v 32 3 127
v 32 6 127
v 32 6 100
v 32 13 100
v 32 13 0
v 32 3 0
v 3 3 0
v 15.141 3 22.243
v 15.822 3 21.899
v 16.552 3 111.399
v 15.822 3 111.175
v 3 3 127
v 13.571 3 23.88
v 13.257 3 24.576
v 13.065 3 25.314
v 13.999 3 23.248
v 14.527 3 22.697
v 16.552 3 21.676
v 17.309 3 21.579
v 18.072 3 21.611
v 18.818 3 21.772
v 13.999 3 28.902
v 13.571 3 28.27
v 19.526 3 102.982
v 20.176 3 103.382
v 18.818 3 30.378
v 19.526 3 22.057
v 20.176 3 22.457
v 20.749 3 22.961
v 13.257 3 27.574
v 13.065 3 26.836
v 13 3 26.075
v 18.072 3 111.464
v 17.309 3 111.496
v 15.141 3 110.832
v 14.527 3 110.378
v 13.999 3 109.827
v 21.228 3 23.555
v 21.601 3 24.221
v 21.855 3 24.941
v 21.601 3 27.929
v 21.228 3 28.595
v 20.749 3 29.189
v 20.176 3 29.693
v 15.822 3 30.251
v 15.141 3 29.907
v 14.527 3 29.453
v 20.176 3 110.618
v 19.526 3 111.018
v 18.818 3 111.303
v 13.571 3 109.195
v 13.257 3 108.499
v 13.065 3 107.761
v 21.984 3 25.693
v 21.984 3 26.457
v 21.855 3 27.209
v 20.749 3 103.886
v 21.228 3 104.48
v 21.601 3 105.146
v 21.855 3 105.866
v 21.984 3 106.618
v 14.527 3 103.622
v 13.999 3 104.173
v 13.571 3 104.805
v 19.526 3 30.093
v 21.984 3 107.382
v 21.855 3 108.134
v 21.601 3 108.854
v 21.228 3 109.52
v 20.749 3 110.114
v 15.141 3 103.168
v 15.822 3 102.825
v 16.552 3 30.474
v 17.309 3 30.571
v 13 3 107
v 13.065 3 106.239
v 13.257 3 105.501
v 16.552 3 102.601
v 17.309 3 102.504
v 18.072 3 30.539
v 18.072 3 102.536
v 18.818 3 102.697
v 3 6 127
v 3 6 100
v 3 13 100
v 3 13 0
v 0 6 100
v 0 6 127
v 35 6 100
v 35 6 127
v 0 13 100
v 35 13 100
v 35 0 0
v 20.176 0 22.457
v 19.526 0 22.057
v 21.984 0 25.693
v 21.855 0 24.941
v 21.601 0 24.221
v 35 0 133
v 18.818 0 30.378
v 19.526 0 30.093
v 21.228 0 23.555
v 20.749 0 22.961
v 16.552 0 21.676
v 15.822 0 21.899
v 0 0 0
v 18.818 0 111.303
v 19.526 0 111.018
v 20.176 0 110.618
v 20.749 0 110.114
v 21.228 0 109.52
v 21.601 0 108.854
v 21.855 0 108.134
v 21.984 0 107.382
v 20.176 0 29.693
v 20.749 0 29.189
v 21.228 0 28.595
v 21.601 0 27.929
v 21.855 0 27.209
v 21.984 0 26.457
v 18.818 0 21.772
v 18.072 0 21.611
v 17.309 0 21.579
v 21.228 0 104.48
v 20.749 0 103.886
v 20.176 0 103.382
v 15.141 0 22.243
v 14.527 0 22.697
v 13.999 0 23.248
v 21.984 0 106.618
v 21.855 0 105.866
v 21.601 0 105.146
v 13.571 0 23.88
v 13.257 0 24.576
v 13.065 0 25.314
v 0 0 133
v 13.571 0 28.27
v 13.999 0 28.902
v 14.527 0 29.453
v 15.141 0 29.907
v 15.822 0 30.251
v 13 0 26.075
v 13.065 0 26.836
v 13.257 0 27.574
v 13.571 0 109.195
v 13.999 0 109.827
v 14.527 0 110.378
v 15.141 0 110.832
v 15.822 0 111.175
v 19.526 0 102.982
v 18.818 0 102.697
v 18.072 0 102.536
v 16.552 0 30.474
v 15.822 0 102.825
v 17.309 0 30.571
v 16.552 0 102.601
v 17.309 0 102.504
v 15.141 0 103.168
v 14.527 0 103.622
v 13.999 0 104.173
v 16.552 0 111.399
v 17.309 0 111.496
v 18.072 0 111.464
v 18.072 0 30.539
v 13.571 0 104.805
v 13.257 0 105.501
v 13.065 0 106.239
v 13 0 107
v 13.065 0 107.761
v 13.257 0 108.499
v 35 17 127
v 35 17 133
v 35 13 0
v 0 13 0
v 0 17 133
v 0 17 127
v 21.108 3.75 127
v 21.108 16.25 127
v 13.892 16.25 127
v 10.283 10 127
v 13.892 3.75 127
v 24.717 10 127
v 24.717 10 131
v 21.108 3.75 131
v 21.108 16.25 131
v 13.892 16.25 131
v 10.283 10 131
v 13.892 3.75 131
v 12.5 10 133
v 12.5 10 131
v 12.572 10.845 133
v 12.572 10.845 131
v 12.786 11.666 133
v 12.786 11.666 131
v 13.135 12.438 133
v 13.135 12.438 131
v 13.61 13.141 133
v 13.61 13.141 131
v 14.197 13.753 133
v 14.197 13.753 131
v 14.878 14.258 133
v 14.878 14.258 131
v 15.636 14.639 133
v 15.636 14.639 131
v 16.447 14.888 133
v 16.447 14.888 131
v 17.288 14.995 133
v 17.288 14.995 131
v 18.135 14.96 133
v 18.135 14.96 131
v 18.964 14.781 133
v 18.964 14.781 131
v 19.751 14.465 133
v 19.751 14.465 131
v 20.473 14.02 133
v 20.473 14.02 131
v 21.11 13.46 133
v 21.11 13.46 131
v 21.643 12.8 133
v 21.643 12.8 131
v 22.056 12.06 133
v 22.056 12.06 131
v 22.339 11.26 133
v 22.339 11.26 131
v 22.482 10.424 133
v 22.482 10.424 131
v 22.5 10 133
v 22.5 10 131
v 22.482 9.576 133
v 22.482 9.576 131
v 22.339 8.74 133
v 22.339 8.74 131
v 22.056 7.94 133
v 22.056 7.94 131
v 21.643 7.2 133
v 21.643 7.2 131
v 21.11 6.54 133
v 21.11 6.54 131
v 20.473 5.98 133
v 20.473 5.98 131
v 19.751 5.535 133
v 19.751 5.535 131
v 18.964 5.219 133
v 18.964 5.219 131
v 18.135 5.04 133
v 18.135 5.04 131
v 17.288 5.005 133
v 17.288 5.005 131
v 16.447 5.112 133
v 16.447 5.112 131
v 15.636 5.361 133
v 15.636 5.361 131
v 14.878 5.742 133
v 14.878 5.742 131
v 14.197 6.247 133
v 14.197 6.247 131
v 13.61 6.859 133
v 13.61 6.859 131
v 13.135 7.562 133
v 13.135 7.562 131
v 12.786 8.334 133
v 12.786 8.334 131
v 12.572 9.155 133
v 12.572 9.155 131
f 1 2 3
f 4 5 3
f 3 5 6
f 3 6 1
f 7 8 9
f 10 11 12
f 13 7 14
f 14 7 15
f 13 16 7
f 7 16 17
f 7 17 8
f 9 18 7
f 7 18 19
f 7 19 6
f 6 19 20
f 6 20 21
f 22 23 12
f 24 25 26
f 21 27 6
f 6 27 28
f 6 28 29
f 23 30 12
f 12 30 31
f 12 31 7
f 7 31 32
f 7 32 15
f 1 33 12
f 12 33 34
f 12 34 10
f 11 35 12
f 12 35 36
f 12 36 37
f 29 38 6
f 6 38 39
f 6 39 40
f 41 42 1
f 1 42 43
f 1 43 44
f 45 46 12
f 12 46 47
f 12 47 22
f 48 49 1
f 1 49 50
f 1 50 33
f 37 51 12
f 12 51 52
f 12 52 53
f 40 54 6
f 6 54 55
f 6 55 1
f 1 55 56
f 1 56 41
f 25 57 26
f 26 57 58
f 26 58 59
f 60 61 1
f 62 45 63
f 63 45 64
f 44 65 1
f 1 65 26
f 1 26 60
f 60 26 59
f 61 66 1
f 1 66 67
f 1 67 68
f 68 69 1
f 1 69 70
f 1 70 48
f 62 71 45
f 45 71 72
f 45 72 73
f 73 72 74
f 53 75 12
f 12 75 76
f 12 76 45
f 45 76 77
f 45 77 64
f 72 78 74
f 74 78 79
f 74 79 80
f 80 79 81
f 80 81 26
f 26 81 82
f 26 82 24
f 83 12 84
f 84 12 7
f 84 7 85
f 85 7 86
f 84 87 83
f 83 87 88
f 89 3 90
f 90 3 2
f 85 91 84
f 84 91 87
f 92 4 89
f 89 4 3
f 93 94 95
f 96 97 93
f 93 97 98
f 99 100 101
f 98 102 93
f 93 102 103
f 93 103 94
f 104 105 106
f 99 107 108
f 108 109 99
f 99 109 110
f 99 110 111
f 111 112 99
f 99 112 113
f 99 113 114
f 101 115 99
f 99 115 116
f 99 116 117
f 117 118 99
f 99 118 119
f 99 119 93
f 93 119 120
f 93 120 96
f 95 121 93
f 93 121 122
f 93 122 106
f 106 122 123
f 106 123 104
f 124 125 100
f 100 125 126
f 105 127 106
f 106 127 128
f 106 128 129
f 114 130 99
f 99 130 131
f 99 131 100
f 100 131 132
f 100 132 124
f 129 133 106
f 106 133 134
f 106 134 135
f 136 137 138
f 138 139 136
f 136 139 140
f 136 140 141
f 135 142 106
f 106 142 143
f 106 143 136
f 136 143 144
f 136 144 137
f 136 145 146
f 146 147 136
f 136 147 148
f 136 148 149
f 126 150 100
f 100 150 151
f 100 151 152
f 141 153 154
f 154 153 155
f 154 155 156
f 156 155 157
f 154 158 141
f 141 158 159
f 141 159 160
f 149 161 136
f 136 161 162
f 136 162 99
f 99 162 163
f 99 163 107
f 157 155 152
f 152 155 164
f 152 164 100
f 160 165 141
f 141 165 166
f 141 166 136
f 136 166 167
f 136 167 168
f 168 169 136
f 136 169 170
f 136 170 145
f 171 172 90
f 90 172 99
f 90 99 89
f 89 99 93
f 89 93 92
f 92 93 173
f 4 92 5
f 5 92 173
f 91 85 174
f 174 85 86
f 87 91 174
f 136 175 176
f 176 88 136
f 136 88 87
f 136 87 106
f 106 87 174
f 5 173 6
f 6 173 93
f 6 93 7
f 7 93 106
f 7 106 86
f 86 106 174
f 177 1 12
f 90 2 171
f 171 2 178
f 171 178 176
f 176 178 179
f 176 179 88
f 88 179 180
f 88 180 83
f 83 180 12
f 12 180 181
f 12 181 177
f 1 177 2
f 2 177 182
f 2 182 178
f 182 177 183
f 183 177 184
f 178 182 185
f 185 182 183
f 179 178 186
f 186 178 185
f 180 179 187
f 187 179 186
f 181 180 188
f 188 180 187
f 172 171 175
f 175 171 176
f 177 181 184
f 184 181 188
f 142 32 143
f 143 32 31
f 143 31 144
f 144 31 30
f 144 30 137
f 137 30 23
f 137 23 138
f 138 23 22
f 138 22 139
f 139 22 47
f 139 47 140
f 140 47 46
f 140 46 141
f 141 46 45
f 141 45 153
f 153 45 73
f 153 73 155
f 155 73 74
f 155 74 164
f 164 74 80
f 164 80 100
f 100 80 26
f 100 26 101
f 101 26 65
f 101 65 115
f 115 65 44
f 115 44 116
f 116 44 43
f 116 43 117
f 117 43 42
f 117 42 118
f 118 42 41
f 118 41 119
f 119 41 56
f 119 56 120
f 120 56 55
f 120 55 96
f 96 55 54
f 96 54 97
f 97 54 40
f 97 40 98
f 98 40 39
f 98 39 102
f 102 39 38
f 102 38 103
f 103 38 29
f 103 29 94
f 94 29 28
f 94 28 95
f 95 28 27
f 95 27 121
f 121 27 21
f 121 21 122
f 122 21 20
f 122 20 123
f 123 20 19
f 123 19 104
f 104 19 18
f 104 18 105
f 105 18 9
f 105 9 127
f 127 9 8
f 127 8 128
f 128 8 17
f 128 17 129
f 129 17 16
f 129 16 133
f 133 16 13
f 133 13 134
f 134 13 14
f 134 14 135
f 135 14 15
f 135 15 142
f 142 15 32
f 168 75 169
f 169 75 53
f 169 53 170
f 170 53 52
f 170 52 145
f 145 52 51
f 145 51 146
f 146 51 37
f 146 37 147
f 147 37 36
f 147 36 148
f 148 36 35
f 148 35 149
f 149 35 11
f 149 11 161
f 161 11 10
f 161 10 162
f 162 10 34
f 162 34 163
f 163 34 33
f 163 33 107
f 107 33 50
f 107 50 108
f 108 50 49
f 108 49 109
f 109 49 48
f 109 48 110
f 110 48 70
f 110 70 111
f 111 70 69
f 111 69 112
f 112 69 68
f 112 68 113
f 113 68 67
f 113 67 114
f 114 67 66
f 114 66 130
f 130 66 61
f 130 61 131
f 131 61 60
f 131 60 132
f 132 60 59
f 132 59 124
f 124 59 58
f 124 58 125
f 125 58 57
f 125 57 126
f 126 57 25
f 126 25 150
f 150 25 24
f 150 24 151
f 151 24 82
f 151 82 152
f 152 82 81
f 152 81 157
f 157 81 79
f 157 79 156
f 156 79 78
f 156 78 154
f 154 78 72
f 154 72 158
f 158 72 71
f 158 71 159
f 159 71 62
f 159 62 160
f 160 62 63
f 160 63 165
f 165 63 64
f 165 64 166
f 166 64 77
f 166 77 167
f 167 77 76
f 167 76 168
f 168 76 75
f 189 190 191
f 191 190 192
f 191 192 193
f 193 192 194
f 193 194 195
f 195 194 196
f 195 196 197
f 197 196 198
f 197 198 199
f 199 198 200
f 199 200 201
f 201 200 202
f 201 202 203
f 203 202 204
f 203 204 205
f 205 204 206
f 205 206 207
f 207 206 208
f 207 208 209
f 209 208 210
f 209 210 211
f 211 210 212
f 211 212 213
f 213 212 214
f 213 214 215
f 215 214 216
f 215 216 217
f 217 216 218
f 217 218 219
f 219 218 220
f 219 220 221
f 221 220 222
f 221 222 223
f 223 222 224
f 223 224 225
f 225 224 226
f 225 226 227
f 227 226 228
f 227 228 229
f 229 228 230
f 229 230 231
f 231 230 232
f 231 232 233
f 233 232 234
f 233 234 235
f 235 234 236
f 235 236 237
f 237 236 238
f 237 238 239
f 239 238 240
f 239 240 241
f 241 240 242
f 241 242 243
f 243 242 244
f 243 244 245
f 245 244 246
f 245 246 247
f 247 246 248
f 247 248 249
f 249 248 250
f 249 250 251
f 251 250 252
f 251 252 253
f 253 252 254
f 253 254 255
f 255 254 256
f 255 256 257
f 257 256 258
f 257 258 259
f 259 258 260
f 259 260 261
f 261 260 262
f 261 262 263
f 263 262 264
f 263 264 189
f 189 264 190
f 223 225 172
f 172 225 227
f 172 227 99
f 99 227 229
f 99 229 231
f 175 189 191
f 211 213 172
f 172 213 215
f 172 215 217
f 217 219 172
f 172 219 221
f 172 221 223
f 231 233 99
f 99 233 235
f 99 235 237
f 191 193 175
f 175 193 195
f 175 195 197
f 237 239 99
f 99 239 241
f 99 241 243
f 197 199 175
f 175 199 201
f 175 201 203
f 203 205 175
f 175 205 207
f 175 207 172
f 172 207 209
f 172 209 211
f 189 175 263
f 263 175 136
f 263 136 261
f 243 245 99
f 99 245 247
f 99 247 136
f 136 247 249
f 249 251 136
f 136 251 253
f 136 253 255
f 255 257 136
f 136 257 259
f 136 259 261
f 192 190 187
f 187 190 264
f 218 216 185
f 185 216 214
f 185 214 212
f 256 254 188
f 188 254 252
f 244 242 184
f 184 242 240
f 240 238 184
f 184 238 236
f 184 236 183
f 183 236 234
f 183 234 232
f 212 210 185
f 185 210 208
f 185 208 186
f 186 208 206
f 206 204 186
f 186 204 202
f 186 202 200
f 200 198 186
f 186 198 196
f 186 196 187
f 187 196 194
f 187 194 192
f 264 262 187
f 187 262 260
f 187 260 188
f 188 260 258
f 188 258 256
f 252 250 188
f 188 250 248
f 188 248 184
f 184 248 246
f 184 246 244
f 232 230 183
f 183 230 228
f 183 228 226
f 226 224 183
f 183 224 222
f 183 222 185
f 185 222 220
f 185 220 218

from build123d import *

# Parameters (mm, degrees)
BOSS_EXTRUDE1_DEPTH = 100
BOSS_EXTRUDE2_DEPTH = 31
SKETCH3_W           = 35
SKETCH3_H           = 17
BOSS_EXTRUDE3_DEPTH = 4
SKETCH4_R           = 4.5
CUT_EXTRUDE1_DEPTH  = 137.315809795
SKETCH3_4_W         = 35
SKETCH3_4_H         = 17
SKETCH3_4_R         = 5
BOSS_EXTRUDE4_DEPTH = 2


with BuildPart() as part:
    # Sketch1 → Boss-Extrude1 (new body)
    with BuildSketch(Plane.XY):
        Polygon((0, 0), (0, 13), (3, 13), (3, 3), (32, 3), (32, 13), (35, 13), (35, 0), align=None)
    extrude(amount=BOSS_EXTRUDE1_DEPTH)

    # Sketch2 → Boss-Extrude2 (add)
    with BuildSketch(Plane.XY.offset(100)):
        Polygon((3, 6), (3, 3), (32, 3), (32, 6), (35, 6), (35, 0), (0, 0), (0, 6), align=None)
    extrude(amount=BOSS_EXTRUDE2_DEPTH)

    # Sketch3 → Boss-Extrude3 (add)
    with BuildSketch(Plane.XY.offset(131)):
        with Locations((17.5, 8.5)):
            Rectangle(SKETCH3_W, SKETCH3_H)
        Polygon((13.891560818, 16.25), (21.108439182, 16.25), (24.716878365, 10), (21.108439182, 3.75), (13.891560818, 3.75), (10.283121635, 10), align=None, mode=Mode.SUBTRACT)
    extrude(amount=-BOSS_EXTRUDE3_DEPTH)

    # Sketch4 → Cut-Extrude1 (cut, through all)
    with BuildSketch(Plane(origin=(0, 3, 0), x_dir=(1, 0, 0), z_dir=(0, 1, 0))):
        with Locations((17.5, -107)):
            Circle(SKETCH4_R)
        with Locations((17.5, -26.075)):
            Circle(SKETCH4_R)
    extrude(amount=-CUT_EXTRUDE1_DEPTH, mode=Mode.SUBTRACT)

    # Sketch3<4> → Boss-Extrude4 (add)
    with BuildSketch(Plane.XY.offset(131)):
        with Locations((17.5, 8.5)):
            Rectangle(SKETCH3_4_W, SKETCH3_4_H)
        with Locations((17.5, 10)):
            Circle(SKETCH3_4_R, mode=Mode.SUBTRACT)
    extrude(amount=BOSS_EXTRUDE4_DEPTH)


solid = part.part
